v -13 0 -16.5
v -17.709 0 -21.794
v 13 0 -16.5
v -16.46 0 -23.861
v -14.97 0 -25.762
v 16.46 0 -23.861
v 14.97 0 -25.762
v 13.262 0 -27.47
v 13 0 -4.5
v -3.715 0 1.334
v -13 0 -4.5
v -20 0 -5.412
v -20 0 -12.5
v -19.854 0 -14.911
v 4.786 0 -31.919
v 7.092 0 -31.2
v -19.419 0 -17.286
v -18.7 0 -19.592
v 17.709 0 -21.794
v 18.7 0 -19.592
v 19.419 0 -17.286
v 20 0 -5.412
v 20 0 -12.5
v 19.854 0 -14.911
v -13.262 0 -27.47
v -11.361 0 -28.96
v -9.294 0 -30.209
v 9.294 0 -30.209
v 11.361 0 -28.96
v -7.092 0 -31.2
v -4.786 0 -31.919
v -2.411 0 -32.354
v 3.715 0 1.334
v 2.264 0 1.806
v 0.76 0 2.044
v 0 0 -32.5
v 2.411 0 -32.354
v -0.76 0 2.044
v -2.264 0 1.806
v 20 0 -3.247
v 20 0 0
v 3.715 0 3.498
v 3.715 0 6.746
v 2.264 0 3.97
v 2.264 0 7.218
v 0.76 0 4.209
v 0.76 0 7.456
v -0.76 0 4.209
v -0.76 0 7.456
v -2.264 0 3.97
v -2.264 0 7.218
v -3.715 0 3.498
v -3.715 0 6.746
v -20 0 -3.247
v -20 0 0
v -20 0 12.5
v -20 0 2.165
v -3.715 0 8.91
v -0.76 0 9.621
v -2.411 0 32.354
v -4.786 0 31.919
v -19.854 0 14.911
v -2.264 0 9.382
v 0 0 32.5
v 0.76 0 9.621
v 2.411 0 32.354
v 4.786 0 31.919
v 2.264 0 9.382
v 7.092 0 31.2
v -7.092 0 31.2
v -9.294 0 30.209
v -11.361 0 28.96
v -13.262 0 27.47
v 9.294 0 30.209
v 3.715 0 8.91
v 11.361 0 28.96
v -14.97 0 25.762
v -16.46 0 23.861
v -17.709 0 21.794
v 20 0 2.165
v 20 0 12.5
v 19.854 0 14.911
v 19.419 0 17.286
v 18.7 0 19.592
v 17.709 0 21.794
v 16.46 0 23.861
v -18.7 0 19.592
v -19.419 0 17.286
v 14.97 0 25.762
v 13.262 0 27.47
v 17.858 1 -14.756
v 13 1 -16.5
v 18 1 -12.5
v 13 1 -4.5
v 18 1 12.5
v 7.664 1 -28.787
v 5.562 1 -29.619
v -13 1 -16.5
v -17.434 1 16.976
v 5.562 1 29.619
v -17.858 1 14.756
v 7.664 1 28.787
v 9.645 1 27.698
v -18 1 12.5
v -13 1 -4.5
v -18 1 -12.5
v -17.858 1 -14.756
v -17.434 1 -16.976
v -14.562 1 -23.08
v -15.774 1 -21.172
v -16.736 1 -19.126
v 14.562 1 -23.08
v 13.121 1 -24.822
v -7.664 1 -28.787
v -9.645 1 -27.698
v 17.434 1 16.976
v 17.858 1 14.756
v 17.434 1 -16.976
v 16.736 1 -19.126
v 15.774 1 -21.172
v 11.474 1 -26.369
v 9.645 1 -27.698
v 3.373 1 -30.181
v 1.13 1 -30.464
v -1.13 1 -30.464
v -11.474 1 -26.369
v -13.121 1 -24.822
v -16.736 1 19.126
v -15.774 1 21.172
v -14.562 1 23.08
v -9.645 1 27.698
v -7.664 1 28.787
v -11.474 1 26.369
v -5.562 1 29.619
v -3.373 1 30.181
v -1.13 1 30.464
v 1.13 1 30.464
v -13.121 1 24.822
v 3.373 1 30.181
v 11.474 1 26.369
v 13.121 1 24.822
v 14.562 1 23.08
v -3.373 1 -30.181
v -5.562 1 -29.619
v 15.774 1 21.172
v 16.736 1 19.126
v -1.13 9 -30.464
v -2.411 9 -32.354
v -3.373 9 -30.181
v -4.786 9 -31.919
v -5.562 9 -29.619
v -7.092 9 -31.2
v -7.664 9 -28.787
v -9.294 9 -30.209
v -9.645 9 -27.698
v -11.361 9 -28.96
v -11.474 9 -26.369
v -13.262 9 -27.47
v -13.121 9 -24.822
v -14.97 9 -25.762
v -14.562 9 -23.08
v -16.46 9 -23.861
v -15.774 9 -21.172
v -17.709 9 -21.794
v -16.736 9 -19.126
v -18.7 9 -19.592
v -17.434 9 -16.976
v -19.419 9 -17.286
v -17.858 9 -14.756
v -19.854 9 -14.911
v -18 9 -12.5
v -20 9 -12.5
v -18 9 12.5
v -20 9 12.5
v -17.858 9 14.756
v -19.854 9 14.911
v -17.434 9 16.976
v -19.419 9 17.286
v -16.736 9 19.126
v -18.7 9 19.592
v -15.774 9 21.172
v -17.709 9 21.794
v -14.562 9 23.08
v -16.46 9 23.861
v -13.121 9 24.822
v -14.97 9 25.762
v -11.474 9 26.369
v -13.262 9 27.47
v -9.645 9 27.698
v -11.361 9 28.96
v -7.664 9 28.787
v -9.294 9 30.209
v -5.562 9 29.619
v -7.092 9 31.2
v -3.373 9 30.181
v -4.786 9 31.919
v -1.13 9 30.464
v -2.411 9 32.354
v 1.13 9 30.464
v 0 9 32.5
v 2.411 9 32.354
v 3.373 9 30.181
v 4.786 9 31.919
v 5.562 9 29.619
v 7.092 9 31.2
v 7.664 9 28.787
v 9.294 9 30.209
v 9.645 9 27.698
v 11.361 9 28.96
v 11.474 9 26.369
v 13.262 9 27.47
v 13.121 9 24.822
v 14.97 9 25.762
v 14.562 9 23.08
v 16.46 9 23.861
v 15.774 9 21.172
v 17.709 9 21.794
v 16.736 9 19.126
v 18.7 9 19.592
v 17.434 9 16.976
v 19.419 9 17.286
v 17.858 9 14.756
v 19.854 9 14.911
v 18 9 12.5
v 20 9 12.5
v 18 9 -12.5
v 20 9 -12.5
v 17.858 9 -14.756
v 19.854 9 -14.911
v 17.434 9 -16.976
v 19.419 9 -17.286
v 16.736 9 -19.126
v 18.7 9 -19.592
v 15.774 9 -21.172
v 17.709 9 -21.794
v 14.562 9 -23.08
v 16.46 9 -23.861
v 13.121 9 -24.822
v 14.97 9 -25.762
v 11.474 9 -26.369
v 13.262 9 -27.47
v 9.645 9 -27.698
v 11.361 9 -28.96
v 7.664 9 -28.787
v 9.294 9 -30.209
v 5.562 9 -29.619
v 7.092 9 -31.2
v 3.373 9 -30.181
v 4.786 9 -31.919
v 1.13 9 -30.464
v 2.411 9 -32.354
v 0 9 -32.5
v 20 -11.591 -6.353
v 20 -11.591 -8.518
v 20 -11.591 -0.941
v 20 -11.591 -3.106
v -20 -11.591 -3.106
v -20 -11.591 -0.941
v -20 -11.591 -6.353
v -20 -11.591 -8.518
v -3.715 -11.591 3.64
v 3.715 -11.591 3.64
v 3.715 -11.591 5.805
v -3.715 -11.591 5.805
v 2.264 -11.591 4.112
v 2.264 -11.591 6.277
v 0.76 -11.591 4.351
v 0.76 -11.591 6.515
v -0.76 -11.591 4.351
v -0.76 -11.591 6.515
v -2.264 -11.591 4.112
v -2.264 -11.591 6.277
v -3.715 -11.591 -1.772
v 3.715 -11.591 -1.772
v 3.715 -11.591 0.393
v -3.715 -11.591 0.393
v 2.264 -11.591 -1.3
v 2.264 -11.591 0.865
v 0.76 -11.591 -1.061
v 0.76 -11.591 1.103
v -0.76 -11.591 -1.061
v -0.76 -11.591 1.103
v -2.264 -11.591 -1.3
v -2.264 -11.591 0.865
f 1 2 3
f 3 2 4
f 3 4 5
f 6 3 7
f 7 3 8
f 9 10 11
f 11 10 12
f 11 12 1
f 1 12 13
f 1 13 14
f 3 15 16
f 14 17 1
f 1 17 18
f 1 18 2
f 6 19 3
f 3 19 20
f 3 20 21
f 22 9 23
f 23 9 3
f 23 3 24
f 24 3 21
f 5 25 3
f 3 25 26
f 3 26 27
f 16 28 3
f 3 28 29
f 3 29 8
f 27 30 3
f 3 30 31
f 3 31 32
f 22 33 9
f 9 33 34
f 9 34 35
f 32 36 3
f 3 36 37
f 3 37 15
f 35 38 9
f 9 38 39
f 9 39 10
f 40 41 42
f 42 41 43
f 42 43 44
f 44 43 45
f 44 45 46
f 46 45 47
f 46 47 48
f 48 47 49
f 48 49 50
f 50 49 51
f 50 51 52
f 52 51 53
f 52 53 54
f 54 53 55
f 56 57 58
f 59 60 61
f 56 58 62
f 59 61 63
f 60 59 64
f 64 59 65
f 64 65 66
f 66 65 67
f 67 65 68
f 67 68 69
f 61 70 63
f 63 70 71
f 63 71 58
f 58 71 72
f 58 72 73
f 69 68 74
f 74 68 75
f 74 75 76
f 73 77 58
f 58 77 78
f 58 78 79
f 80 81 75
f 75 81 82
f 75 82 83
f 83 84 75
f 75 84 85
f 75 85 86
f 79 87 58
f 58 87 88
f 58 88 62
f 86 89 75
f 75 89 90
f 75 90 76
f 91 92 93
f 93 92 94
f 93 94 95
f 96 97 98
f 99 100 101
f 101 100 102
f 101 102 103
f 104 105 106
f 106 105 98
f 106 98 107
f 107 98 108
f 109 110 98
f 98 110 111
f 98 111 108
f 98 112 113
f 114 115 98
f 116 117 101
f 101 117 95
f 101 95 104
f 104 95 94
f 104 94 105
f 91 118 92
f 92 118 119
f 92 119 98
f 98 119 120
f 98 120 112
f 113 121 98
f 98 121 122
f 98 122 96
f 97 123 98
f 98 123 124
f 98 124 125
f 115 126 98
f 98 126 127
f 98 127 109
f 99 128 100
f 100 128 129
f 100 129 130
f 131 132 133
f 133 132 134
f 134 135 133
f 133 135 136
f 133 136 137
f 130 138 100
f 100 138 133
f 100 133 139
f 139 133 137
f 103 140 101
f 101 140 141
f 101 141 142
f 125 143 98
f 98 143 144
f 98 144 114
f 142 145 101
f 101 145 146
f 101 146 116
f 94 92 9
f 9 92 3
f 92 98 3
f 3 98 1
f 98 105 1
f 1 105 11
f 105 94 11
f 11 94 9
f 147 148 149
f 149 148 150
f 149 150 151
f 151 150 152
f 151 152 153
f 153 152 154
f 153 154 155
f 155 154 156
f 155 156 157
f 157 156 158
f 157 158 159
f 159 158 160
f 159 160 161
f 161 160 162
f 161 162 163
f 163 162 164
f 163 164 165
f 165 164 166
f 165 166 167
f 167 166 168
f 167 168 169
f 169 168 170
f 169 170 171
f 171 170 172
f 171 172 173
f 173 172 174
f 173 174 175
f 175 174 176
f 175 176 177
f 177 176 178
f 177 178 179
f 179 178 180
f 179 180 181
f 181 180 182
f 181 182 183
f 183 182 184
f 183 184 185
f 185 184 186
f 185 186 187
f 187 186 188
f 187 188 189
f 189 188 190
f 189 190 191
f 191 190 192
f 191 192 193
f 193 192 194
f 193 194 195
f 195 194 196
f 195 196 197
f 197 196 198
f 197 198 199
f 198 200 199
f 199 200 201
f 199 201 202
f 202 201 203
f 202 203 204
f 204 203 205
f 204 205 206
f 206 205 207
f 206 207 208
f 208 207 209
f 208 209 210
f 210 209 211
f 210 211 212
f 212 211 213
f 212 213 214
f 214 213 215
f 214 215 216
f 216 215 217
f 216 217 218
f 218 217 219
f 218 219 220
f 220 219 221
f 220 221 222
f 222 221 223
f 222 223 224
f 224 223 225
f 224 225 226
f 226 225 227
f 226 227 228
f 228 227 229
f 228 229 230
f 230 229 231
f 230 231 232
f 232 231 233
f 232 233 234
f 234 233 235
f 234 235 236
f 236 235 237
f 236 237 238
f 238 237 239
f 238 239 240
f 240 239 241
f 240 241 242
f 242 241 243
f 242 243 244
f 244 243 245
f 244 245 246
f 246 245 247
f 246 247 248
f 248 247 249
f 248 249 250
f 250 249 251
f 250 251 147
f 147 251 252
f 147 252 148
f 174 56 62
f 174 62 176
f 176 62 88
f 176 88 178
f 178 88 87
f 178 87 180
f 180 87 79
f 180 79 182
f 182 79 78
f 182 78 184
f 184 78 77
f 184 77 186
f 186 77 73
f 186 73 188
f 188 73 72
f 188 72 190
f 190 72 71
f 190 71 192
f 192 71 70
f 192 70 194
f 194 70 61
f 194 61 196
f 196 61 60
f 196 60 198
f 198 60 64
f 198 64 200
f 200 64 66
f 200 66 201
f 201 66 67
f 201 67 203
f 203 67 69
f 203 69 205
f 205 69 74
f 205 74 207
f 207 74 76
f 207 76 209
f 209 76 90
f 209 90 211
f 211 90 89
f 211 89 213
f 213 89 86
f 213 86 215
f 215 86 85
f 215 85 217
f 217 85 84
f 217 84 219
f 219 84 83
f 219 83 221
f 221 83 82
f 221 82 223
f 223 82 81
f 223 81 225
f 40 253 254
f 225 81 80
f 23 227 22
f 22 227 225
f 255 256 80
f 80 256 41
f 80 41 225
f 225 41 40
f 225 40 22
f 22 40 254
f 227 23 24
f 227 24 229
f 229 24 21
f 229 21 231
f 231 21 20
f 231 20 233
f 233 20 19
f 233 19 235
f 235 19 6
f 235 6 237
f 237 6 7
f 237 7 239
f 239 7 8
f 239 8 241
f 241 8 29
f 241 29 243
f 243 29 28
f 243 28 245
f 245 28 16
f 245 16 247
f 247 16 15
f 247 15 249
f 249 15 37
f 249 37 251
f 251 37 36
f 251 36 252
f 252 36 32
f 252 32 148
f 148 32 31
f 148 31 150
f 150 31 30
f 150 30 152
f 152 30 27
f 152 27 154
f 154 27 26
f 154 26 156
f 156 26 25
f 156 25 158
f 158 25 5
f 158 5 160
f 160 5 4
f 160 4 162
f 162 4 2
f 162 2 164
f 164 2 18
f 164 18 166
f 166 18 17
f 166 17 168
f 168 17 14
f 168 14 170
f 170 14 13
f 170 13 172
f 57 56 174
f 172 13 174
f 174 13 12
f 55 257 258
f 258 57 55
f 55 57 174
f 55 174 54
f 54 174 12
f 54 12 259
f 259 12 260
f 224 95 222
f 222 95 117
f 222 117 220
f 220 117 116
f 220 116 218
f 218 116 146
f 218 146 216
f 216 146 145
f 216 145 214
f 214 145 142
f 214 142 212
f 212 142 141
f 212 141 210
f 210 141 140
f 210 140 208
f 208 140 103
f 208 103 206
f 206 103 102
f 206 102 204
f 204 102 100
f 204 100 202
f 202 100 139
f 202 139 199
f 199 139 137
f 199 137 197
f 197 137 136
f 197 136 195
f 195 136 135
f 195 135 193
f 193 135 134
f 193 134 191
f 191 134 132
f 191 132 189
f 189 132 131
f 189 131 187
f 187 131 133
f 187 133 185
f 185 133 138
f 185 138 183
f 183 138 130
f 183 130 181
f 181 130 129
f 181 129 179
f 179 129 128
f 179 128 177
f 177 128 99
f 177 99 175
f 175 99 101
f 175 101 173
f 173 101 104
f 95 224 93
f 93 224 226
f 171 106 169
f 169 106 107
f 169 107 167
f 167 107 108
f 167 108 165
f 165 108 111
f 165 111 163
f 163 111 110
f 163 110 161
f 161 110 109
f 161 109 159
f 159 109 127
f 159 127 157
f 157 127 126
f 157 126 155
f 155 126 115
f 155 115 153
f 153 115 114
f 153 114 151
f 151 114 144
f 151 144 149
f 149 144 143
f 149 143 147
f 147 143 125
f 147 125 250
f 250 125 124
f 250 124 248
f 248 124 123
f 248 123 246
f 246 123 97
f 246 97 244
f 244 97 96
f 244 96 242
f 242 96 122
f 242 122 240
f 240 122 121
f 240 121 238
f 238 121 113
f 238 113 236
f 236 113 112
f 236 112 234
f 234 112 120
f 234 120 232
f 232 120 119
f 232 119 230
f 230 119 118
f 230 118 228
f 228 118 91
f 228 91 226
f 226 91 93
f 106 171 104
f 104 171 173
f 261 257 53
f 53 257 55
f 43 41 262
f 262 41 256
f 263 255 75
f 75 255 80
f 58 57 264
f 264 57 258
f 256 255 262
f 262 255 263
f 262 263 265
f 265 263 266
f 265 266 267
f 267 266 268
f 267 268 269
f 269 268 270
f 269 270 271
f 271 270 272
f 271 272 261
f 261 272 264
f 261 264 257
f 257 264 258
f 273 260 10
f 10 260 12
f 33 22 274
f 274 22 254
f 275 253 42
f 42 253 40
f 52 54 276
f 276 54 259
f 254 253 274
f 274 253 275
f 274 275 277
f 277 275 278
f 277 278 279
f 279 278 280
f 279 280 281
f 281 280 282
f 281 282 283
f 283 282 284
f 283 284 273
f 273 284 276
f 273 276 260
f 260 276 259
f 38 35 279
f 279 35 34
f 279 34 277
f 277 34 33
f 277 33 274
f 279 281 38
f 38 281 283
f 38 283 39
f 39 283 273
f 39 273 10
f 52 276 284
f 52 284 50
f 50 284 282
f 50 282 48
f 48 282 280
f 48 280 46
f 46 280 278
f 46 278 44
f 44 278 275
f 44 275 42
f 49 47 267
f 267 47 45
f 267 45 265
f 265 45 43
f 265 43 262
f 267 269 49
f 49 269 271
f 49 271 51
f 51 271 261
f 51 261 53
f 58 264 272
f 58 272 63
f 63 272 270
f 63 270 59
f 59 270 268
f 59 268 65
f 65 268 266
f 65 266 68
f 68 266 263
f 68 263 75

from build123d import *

# Parameters (mm, degrees)
SKETCH1_W           = 26
SKETCH1_H           = 12
BOSS_EXTRUDE1_DEPTH = 1
BOSS_EXTRUDE2_DEPTH = 9
BOSS_EXTRUDE3_DEPTH = 12
FILLET1_R           = 10


with BuildPart() as part:
    # Sketch1 → Boss-Extrude1 (new body)
    with BuildSketch(Plane(origin=(0, 0, 0), x_dir=(1, 0, 0), z_dir=(0, 1, 0))):
        with BuildLine():
            Line((-18, -12.5), (-18, 12.5))
            ThreePointArc((-18, 12.5), (0, 30.5), (18, 12.5))
            Line((18, 12.5), (18, -12.5))
            ThreePointArc((18, -12.5), (0, -30.5), (-18, -12.5))
        make_face()
        with Locations((0, 10.5)):
            Rectangle(SKETCH1_W, SKETCH1_H, mode=Mode.SUBTRACT)
    extrude(amount=BOSS_EXTRUDE1_DEPTH)

    # Sketch2 → Boss-Extrude2 (add)
    with BuildSketch(Plane(origin=(0, 0, 0), x_dir=(1, 0, 0), z_dir=(0, 1, 0))):
        with BuildLine():
            Line((20, -12.5), (20, 12.5))
            ThreePointArc((20, 12.5), (0, 32.5), (-20, 12.5))
            Line((-20, 12.5), (-20, -12.5))
            ThreePointArc((-20, -12.5), (0, -32.5), (20, -12.5))
        make_face()
        with BuildLine():
            Line((18, -12.5), (18, 12.5))
            ThreePointArc((18, 12.5), (0, 30.5), (-18, 12.5))
            Line((-18, 12.5), (-18, -12.5))
            ThreePointArc((-18, -12.5), (0, -30.5), (18, -12.5))
        make_face(mode=Mode.SUBTRACT)
    extrude(amount=BOSS_EXTRUDE2_DEPTH)

    # Sketch3 → Boss-Extrude3 (add, along a direction that is not the sketch's normal)
    with BuildSketch(Plane.XZ):
        Polygon((-20, 0), (0, 8.284271247), (20, 0), (20, 2.164784401), (0, 10.449055648), (-20, 2.164784401), align=None)
        Polygon((-20, -3.247176601), (0, 5.037094647), (20, -3.247176601), (20, -5.411961001), (0, 2.872310246), (-20, -5.411961001), align=None)
    extrude(amount=BOSS_EXTRUDE3_DEPTH, dir=(0, -0.9659258262890672, -0.25881904510252496))

    # Fillet1
    fillet1_edges = [part.edges().sort_by_distance(p)[0] for p in [
        (0, -5.795554958, 6.731356977),
        (0, -5.795554958, 8.896141377),
        (0, -5.795554958, 1.319395975),
        (0, -5.795554958, 3.484180376),
    ]]
    fillet(fillet1_edges, radius=FILLET1_R)


solid = part.part
